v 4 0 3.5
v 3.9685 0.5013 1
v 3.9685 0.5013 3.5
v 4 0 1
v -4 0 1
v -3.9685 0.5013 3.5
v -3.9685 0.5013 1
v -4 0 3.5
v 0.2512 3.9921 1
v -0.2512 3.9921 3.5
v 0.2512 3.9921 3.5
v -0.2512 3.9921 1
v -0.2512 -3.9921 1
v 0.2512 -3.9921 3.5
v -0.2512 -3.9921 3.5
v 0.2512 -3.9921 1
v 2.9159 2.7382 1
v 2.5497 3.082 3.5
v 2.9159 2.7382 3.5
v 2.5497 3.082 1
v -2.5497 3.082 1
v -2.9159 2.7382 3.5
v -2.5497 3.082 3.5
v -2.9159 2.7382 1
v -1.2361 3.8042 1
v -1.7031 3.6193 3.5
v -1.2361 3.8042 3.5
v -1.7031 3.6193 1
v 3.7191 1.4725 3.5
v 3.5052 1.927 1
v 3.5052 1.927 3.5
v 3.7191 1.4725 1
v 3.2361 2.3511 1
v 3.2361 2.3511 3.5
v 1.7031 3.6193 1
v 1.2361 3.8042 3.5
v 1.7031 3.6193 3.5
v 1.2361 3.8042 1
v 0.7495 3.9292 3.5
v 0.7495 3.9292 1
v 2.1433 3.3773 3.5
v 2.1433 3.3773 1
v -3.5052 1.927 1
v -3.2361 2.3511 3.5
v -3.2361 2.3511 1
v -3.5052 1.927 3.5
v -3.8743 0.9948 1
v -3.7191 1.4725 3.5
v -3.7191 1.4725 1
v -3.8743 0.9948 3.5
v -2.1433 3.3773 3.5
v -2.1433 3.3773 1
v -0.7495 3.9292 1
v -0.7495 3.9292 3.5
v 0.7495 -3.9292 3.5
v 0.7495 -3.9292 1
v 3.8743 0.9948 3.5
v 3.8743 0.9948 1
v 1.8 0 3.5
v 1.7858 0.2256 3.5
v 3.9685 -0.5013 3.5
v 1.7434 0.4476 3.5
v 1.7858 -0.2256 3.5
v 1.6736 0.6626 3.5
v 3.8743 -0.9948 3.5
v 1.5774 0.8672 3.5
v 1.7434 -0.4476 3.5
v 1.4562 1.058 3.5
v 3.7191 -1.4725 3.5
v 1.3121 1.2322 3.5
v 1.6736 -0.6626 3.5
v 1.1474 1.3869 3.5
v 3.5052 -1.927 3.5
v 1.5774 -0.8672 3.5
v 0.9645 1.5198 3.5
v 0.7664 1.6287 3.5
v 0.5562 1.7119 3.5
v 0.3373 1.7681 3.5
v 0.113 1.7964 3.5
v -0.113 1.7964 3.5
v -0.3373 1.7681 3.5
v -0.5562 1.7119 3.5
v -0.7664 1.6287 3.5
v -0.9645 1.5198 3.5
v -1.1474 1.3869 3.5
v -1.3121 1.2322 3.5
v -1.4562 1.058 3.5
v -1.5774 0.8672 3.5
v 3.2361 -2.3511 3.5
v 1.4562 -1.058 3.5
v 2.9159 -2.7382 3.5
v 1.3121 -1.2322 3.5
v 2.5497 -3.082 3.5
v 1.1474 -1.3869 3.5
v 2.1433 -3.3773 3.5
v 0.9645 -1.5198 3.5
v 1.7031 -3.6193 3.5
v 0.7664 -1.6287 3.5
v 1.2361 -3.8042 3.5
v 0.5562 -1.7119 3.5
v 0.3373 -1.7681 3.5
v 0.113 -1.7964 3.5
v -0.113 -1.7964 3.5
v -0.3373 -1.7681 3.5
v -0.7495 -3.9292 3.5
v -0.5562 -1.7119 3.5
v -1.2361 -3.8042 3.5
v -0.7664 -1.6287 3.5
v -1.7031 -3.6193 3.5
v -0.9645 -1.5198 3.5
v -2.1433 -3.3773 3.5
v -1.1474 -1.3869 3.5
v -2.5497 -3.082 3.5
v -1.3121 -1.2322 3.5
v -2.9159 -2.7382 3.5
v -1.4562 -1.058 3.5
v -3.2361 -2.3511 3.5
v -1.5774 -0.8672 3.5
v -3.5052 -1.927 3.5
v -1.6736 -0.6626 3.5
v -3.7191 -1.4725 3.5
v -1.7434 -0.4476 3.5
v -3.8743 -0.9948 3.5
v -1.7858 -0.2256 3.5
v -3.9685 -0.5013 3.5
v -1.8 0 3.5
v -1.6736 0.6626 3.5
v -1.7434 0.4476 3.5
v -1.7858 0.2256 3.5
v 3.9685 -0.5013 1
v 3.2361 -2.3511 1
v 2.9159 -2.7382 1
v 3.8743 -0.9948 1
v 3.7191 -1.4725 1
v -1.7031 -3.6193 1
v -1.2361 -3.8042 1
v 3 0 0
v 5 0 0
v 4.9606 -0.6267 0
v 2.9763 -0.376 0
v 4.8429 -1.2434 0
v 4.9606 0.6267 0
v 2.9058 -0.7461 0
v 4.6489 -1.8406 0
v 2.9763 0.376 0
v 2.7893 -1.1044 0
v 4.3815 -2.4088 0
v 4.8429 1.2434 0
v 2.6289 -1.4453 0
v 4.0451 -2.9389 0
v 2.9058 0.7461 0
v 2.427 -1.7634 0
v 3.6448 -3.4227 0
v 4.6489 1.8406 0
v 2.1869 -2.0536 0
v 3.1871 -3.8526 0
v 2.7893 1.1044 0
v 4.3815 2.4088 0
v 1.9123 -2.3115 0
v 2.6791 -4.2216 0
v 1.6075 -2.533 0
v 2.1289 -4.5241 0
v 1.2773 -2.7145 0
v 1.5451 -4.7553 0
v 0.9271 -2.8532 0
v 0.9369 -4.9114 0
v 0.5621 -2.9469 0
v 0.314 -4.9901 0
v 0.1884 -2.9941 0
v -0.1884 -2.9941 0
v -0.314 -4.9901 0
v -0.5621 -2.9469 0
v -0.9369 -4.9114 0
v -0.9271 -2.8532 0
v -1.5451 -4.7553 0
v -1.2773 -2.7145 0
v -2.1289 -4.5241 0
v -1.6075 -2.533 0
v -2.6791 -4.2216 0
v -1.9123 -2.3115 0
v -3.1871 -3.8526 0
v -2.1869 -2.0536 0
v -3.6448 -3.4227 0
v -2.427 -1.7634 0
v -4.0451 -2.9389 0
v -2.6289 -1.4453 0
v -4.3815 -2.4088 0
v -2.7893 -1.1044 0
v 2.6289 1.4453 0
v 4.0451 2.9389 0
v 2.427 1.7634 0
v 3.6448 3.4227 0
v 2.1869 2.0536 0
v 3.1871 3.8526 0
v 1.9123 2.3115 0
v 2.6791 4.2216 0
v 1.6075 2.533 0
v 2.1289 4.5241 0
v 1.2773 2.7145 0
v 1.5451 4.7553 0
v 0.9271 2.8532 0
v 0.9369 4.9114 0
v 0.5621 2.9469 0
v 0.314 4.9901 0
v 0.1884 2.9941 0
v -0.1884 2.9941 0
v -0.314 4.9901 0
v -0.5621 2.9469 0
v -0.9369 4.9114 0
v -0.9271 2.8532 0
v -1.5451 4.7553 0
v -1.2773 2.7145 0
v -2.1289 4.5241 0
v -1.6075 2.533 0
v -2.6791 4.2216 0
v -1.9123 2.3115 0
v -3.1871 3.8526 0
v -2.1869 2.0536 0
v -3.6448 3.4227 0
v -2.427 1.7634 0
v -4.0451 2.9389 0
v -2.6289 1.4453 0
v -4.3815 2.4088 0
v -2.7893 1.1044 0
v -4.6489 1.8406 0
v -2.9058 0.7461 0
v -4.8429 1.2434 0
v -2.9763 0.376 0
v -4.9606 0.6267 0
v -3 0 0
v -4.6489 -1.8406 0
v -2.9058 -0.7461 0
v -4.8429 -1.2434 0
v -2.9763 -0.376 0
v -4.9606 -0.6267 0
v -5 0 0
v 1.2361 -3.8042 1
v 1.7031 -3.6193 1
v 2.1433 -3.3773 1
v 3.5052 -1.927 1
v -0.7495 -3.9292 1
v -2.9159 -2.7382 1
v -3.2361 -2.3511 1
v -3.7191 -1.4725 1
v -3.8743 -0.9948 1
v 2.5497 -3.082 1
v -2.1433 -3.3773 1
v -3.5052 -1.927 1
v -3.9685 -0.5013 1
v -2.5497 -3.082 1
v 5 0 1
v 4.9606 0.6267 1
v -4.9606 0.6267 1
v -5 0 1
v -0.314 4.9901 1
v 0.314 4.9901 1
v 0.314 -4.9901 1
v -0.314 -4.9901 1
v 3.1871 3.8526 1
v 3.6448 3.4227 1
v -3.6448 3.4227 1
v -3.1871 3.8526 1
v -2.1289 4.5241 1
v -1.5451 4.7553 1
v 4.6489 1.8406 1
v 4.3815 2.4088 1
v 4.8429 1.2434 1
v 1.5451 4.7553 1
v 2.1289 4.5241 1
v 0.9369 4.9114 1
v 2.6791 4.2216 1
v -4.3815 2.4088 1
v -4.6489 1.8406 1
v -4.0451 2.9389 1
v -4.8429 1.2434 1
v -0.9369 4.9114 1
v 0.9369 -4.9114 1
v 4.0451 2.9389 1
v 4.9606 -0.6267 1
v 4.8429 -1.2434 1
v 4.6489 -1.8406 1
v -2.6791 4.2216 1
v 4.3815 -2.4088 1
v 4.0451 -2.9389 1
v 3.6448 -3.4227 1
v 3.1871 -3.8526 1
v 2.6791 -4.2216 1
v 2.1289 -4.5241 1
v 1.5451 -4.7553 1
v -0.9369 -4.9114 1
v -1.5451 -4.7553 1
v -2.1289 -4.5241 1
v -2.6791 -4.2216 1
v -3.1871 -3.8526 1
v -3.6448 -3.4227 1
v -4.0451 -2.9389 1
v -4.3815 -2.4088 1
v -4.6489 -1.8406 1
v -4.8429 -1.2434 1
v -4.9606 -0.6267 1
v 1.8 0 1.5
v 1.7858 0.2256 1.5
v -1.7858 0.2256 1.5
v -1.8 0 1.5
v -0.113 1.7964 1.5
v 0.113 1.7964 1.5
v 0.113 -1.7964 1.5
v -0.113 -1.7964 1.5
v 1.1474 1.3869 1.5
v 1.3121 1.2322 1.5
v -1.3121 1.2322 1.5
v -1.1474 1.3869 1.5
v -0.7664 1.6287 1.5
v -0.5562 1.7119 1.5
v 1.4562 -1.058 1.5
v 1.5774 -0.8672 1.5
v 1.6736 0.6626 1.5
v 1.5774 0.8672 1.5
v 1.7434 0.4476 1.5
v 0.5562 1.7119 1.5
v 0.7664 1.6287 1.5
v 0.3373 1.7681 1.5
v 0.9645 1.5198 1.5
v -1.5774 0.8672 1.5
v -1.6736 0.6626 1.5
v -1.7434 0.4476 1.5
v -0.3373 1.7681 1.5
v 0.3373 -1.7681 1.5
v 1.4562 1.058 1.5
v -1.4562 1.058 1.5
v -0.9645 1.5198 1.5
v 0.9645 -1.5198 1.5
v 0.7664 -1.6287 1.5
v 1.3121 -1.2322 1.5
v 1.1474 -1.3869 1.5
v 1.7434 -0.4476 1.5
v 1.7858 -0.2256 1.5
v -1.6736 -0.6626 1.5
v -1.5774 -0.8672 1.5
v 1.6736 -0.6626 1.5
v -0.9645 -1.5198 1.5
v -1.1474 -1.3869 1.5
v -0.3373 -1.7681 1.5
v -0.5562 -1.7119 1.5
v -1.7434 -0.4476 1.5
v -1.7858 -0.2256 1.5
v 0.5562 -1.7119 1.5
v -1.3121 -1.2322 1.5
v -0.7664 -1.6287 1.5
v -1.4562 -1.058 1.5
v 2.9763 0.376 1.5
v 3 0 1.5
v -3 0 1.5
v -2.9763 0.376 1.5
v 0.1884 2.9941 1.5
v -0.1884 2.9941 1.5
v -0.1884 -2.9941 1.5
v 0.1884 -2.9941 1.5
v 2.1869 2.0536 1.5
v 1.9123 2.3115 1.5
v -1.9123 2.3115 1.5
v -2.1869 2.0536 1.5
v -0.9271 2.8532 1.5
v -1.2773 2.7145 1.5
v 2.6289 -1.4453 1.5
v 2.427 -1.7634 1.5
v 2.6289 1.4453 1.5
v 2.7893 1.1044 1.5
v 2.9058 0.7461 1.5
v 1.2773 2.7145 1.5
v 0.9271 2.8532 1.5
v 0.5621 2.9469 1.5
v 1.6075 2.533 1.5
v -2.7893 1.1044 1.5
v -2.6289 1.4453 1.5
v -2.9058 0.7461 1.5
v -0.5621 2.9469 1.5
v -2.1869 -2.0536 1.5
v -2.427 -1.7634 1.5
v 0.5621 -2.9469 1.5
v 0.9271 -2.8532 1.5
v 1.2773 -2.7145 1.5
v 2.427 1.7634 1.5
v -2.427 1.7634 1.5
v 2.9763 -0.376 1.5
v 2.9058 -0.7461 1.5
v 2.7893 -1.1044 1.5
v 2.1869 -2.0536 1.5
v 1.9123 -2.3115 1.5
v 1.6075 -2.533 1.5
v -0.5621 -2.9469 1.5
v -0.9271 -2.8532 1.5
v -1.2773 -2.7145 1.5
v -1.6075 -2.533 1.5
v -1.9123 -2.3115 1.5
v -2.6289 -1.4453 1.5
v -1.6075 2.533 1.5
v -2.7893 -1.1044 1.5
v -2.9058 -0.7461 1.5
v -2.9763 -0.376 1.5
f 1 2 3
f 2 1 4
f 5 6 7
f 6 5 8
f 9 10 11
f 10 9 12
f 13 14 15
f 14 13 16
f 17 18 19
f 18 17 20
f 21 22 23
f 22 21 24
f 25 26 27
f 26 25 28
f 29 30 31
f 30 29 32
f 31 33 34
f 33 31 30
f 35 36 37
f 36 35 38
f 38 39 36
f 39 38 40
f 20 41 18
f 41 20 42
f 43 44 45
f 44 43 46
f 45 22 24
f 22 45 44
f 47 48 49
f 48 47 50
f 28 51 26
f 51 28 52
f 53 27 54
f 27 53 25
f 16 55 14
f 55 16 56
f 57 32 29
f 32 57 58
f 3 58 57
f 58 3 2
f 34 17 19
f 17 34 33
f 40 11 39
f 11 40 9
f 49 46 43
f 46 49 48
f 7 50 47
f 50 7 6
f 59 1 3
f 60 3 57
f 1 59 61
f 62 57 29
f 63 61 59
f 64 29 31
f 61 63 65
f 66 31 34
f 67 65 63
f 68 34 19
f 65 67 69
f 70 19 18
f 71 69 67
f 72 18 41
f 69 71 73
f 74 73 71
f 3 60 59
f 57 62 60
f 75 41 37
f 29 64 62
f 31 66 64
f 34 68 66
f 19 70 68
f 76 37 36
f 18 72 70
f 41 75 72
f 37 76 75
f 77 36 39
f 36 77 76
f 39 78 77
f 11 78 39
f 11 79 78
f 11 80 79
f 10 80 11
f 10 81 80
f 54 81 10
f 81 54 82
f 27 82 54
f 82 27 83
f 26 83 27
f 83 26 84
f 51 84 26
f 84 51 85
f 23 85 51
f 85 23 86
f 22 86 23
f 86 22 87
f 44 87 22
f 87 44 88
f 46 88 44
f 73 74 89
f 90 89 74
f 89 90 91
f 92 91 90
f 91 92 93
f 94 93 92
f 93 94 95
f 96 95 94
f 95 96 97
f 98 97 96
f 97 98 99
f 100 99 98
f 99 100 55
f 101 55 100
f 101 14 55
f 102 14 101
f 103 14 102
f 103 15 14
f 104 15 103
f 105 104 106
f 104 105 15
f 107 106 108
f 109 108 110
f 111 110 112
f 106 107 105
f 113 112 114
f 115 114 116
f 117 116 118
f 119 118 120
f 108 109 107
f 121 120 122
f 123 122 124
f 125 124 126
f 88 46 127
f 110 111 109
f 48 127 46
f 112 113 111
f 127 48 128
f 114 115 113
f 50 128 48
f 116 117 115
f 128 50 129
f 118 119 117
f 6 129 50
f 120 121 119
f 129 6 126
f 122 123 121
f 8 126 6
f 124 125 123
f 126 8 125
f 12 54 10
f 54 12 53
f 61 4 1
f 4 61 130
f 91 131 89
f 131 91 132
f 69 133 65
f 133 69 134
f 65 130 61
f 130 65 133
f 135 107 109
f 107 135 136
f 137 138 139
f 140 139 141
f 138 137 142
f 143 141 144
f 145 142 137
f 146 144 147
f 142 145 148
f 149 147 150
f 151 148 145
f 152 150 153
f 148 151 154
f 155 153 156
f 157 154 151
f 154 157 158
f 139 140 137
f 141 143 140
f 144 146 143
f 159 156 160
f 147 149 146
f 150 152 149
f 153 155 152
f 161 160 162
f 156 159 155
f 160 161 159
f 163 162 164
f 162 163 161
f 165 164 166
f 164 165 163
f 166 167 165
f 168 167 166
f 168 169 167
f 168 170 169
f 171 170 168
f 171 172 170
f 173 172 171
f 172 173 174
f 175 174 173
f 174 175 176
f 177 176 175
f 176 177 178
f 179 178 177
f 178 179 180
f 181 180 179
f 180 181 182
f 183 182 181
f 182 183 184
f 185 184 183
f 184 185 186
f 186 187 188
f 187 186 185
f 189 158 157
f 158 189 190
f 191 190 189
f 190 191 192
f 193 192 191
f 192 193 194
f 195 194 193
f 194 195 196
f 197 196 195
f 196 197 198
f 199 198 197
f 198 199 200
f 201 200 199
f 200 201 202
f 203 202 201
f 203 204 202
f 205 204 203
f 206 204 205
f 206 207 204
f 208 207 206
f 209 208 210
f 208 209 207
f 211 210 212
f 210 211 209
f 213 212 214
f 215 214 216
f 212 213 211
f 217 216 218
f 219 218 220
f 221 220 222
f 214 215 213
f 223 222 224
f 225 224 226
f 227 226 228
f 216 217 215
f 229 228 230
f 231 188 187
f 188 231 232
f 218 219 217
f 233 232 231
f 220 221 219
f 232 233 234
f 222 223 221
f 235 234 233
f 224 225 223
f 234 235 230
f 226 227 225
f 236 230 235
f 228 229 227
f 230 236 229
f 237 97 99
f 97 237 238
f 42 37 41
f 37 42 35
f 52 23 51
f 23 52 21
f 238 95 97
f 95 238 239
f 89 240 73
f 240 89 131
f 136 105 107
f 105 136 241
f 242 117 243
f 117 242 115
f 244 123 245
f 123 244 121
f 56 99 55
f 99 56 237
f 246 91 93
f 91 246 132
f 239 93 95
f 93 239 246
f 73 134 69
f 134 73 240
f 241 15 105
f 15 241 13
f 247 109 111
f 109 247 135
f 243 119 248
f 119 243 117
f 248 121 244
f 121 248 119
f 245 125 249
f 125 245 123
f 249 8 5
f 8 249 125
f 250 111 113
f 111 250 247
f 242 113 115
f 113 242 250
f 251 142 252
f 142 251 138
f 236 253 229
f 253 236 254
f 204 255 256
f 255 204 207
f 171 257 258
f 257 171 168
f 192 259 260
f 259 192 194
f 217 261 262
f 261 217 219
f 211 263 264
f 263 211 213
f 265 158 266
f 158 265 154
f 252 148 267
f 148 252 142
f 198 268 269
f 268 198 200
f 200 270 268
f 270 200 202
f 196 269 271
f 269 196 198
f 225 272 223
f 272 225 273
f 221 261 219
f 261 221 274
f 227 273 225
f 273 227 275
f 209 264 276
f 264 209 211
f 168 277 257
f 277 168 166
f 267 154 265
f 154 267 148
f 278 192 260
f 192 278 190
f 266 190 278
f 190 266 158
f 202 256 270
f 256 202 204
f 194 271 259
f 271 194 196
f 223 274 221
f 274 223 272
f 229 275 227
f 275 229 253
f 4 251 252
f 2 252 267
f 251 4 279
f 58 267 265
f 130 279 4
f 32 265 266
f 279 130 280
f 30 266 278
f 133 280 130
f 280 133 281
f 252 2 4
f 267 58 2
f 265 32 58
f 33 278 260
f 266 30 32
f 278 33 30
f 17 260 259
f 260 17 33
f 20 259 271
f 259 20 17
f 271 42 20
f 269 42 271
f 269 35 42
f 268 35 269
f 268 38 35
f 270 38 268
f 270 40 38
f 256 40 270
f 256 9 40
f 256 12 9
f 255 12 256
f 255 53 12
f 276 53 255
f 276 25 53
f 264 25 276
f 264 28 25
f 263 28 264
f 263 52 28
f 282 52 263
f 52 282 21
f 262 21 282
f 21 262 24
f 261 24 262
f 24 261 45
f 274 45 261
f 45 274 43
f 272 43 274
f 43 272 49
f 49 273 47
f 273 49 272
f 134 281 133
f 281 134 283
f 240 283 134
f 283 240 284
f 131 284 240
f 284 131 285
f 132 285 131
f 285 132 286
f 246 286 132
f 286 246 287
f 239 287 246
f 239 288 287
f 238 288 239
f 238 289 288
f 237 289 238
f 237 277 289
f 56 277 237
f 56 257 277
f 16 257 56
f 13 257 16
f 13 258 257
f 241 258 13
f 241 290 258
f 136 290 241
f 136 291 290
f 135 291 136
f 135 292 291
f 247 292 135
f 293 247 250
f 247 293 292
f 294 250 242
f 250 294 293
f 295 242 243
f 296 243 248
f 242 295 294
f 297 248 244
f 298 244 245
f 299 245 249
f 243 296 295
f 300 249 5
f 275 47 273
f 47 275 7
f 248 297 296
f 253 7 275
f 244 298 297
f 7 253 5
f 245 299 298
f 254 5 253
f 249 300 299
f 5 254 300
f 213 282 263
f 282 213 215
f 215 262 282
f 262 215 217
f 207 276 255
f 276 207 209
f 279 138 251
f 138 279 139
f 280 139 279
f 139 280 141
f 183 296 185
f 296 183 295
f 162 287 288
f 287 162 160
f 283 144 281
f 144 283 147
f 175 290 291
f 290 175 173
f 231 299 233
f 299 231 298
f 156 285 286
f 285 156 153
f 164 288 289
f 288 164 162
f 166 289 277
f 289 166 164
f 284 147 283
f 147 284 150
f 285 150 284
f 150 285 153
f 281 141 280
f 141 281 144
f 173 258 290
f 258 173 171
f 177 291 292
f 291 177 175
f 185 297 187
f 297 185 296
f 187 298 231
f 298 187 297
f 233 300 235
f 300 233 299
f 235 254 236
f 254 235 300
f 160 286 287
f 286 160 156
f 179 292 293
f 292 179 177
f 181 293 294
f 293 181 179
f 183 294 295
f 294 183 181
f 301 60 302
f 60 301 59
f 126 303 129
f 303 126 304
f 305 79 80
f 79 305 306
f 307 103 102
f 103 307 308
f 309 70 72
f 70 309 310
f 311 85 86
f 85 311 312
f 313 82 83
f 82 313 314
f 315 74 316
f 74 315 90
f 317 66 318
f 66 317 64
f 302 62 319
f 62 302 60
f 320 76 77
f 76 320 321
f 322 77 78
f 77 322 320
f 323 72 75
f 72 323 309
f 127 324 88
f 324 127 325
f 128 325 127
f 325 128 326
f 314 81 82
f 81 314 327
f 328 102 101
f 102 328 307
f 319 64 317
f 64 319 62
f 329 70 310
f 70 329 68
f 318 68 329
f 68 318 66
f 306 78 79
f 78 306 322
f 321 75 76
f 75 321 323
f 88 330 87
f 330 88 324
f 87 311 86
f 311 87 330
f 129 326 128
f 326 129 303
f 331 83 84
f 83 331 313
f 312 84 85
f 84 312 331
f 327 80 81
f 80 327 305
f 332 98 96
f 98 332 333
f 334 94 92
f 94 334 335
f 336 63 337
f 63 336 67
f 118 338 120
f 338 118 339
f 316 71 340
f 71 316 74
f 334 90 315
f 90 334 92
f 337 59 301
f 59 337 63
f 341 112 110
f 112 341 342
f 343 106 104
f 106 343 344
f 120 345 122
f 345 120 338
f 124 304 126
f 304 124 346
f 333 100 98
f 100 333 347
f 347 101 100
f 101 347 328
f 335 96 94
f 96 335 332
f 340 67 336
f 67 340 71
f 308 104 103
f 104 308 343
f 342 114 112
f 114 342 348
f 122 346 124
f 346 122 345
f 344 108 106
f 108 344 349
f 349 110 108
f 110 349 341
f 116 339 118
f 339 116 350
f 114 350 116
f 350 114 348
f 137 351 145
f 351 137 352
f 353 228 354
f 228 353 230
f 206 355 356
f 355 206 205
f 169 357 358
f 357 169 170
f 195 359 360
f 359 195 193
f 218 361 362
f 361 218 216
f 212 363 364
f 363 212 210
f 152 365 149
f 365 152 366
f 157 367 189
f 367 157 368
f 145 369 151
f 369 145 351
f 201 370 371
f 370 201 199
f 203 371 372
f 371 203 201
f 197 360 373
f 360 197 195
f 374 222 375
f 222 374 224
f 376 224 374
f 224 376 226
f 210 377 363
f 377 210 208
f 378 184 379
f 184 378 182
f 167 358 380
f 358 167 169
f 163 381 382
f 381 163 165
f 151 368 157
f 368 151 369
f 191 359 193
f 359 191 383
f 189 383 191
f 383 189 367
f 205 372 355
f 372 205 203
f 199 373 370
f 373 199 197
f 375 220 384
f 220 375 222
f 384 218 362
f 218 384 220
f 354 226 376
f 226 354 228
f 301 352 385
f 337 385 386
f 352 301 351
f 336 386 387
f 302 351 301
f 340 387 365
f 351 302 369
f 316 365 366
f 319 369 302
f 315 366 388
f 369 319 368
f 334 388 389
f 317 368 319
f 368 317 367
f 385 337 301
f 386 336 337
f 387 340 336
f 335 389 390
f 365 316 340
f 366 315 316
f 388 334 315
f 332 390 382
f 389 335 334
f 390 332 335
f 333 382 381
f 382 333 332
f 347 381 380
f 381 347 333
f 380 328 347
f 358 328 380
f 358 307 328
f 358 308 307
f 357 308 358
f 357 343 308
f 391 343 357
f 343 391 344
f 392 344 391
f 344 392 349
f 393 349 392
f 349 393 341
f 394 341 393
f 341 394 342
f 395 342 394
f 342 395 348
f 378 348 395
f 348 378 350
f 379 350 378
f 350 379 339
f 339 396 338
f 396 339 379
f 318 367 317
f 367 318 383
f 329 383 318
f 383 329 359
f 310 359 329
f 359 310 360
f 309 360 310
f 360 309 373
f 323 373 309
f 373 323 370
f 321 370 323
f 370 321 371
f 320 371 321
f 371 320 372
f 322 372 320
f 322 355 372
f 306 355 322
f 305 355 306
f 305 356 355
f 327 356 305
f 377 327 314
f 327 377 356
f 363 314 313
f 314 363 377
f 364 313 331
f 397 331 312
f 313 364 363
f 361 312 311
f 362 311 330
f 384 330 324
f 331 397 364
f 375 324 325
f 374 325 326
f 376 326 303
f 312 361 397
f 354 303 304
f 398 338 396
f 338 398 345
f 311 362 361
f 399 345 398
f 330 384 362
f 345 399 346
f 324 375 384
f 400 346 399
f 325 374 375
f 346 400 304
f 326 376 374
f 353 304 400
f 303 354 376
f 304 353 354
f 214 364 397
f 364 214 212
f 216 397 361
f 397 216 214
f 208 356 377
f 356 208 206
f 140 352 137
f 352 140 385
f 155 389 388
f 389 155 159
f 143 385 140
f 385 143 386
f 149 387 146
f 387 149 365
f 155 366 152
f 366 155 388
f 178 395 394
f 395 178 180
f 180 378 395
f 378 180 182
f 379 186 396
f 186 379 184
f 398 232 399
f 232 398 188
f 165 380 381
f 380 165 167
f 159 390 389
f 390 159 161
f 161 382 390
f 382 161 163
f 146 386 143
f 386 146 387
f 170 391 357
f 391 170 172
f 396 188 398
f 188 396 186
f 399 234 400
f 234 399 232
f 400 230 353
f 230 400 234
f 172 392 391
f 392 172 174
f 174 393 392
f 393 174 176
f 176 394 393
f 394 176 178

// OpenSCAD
$fn=50;

// Nut dimensions
nutX=4;
nutY=3.7;
nutZ=6;
module nut(nutX_arg=nutX,nutY_arg=nutY,nutZ_arg=nutZ)
{
    union()
    {
        cube([nutX_arg,nutY_arg,nutZ_arg],center=true);
        rotate(a=120,v=[1,0,0])  cube([nutX_arg,nutY_arg,nutZ_arg],center=true);
        rotate(a=240,v=[1,0,0])  cube([nutX_arg,nutY_arg,nutZ_arg],center=true);
    }
}

// Feet dimensions
footScrewR=1.8;
footHeadR=3;
footHeadH=1.5;

// Bearing mandrel dimensions
bearingZ=3.5;
bearingR=4;
bearingStandoffR=5;
bearingStandoffH=1.0;
bearingScrewR=3;
module bearing()
{
    difference()
    {
        union()
        {
            cylinder(r=bearingR,h=bearingZ);
            cylinder(r=bearingStandoffR,h=bearingStandoffH);
        }
        cylinder(r=footScrewR,h=bearingZ);
        cylinder(r=footHeadR,h=footHeadH);
    }
}

bearing();
